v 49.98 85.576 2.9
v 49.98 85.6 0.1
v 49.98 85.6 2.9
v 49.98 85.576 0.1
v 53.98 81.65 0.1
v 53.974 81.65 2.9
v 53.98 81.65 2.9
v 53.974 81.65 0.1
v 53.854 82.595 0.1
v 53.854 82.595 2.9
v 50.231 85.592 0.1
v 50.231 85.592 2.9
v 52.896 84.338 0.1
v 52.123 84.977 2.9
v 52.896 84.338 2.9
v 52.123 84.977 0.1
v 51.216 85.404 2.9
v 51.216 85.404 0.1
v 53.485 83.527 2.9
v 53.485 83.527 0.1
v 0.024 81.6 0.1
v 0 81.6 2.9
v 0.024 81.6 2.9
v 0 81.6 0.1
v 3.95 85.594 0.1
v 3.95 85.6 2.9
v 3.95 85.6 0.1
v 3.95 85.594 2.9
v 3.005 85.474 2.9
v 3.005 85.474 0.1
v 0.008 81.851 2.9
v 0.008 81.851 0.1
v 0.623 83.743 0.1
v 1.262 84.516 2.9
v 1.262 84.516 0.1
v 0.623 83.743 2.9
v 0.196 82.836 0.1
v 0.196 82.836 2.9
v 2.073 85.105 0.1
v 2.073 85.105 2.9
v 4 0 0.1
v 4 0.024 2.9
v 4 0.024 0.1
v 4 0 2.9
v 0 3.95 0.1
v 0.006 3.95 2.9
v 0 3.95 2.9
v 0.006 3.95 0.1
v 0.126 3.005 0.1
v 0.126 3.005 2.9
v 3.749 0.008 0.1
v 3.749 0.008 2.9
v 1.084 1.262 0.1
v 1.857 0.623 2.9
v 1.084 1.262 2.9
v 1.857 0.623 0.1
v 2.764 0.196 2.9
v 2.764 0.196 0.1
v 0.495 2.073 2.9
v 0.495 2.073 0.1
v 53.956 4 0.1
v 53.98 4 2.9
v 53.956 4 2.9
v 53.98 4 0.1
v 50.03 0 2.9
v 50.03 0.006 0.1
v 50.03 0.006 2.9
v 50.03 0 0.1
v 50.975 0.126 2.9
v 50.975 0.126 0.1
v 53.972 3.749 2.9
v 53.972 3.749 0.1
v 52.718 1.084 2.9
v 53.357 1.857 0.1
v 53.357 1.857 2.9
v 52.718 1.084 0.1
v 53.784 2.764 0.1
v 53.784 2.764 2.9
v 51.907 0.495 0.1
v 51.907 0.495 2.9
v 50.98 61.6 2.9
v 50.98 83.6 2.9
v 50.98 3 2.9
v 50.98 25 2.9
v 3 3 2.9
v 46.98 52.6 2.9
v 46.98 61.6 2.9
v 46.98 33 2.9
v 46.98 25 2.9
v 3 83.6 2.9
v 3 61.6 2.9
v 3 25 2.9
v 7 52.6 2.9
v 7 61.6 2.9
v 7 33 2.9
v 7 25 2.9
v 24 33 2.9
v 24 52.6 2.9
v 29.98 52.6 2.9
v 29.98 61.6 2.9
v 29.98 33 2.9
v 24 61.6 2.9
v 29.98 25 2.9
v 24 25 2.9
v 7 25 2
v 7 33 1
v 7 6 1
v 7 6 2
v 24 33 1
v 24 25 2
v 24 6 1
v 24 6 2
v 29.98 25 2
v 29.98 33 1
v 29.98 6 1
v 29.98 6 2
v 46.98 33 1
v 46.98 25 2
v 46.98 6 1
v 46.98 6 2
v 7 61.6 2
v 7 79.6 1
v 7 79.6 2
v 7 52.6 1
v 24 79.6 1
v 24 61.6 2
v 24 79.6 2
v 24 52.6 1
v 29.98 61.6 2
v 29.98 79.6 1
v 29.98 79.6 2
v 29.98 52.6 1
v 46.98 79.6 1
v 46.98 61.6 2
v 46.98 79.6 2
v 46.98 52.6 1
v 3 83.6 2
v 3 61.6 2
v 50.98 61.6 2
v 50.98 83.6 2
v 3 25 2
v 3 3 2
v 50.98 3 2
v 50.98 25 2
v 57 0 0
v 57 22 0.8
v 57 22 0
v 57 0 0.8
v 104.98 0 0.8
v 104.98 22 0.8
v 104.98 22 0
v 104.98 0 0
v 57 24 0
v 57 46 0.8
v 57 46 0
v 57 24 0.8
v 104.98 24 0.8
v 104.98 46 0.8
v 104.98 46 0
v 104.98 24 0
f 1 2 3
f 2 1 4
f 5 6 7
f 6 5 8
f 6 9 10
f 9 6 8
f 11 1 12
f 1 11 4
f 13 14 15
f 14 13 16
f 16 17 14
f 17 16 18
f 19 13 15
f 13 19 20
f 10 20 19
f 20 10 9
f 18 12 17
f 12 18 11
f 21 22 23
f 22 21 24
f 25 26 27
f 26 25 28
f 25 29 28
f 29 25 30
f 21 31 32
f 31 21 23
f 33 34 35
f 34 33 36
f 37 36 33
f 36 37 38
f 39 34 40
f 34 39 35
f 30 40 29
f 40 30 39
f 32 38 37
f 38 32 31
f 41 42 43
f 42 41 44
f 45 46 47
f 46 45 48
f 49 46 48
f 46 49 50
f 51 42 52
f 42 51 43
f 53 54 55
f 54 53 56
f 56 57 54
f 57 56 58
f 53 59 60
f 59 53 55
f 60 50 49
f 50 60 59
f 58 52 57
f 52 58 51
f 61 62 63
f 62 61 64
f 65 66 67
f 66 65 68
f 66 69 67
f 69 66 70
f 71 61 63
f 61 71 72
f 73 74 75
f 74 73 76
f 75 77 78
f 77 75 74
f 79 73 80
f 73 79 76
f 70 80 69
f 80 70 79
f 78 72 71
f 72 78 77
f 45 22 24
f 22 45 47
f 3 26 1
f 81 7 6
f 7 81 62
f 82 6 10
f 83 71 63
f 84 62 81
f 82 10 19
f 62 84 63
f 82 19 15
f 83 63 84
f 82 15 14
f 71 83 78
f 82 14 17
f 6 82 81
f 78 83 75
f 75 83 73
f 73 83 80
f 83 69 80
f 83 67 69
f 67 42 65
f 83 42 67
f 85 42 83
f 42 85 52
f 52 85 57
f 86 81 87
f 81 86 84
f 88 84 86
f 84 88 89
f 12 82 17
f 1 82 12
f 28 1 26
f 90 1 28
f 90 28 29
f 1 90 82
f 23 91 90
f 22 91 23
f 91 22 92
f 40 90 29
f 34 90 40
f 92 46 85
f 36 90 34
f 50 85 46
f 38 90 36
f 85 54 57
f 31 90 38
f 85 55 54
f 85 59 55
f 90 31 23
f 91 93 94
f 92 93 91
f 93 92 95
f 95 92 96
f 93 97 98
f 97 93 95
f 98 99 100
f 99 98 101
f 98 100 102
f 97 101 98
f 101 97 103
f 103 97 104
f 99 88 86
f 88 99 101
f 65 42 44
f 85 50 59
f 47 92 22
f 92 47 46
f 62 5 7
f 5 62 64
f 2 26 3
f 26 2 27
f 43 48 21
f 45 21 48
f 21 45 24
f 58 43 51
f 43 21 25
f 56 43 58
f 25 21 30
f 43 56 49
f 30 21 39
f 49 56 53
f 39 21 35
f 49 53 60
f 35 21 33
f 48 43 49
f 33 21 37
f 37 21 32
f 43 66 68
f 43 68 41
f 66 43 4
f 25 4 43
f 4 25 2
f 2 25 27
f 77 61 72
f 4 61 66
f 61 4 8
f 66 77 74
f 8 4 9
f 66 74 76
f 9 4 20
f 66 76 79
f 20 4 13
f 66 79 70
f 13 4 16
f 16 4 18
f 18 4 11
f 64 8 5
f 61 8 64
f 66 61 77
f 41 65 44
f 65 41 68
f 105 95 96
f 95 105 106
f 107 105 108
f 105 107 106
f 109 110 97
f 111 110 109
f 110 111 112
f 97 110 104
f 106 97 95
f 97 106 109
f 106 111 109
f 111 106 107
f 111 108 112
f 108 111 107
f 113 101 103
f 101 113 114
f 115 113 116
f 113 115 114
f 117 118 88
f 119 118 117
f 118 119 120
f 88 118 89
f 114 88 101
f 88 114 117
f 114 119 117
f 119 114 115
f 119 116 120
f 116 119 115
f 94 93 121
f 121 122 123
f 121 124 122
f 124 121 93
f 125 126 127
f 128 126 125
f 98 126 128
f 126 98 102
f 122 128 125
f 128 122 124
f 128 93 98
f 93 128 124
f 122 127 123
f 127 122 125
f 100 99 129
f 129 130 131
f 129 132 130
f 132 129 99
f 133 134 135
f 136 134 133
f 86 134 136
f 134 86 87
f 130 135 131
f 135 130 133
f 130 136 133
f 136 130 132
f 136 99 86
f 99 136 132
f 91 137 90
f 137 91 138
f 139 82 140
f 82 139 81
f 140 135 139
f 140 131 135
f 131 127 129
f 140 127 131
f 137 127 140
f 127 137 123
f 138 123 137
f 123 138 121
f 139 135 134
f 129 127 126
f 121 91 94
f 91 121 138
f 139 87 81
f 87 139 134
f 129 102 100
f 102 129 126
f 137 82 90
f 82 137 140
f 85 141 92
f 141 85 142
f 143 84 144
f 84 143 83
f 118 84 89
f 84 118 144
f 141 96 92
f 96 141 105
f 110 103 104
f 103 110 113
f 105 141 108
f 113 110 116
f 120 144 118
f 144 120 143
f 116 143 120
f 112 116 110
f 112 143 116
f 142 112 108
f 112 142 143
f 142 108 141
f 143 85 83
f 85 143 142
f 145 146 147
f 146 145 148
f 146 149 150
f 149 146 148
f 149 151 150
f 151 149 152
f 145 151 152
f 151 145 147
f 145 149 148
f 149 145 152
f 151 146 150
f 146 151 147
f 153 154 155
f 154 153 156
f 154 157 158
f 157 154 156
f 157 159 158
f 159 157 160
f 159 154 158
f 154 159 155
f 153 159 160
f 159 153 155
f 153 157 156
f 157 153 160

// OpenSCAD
// file: lib/roundCornersCube.scad
/*
http://codeviewer.org/view/code:1b36 
Copyright (C) 2011 Sergio Vilches
This program is free software: you can redistribute it and/or modify it under the terms of the GNU General Public License as published by the Free Software Foundation, either version 3 of the License, or (at your option) any later version.
This program is distributed in the hope that it will be useful, but WITHOUT ANY WARRANTY; without even the implied warranty of MERCHANTABILITY or FITNESS FOR A PARTICULAR PURPOSE. See the GNU General Public License for more details. You should have received a copy of the GNU General Public License along with this program. If not, see <http://www.gnu.org/licenses/>.
Contact: s.vilches.e@gmail.com


    ----------------------------------------------------------- 
                 Round Corners Cube (Extruded)                
      roundCornersCube(x,y,z,r) Where:                        
         - x = Xdir width                                     
         - y = Ydir width                                     
         - z = Height of the cube                             
         - r = Rounding radious                               
                                                              
      Example: roundCornerCube(10,10,2,1);                    
     *Some times it's needed to use F6 to see good results!   
 	 ----------------------------------------------------------- 
*/
// Test it!
// roundCornersCube(10,5,2,1);


module createMeniscus(h,radius) // This module creates the shape that needs to be substracted from a cube to make its corners rounded.
difference(){        //This shape is basicly the difference between a quarter of cylinder and a cube
   translate([radius/2+0.1,radius/2+0.1,0]){
      cube([radius+0.2,radius+0.1,h+0.5],center=true);         // All that 0.x numbers are to avoid "ghost boundaries" when substracting
   }

   cylinder(h=h+0.2,r=radius,$fn = 25,center=true);
}


module roundCornersCube(x,y,z,r)  // Now we just substract the shape we have created in the four corners
difference(){
   cube([x,y,z], center=true);

translate([x/2-r,y/2-r]){  // We move to the first corner (x,y)
      rotate(0){  
         createMeniscus(z,r); // And substract the meniscus
      }
   }
   translate([-x/2+r,y/2-r]){ // To the second corner (-x,y)
      rotate(90){
         createMeniscus(z,r); // But this time we have to rotate the meniscus 90 deg
      }
   }
      translate([-x/2+r,-y/2+r]){ // ... 
      rotate(180){
         createMeniscus(z,r);
      }
   }
      translate([x/2-r,-y/2+r]){
      rotate(270){
         createMeniscus(z,r);
      }
   }
}
// main file
include<lib/roundCornersCube.scad>
CardX=53.98;
CardY=85.60;
CardZ=2.8;
//A bit bigger broader than in ISO/IEC 7810
//because of the printer's percularities
SimX=17;
SimY=27;
SimZ=3;
difference () {
    translate([CardX/2,CardY/2,1.5])
    roundCornersCube(CardX, CardY, CardZ, 4);
    
    translate([7,6,1])
        cube([SimX, SimY, SimZ]);
    translate([CardX-SimX-7,6,1])
        cube([SimX, SimY, SimZ]);
    
    translate([7,CardY-SimY-6,1])
        cube([SimX, SimY, SimZ]);
    translate([CardX-SimX-7,CardY-SimY-6,1])
        cube([SimX, SimY, SimZ]);
    
    translate([3,CardY-24,2])
        cube([CardX-6, SimY-5, SimZ]);
    translate([3,3,2])
        cube([CardX-6, SimY-5, SimZ]);

}
translate([57,0,0]) {
    cube([CardX-6, SimY-5, 0.8]);
}
translate([57,24,0]) {
    cube([CardX-6, SimY-5, 0.8]);
}
echo(version=version());
